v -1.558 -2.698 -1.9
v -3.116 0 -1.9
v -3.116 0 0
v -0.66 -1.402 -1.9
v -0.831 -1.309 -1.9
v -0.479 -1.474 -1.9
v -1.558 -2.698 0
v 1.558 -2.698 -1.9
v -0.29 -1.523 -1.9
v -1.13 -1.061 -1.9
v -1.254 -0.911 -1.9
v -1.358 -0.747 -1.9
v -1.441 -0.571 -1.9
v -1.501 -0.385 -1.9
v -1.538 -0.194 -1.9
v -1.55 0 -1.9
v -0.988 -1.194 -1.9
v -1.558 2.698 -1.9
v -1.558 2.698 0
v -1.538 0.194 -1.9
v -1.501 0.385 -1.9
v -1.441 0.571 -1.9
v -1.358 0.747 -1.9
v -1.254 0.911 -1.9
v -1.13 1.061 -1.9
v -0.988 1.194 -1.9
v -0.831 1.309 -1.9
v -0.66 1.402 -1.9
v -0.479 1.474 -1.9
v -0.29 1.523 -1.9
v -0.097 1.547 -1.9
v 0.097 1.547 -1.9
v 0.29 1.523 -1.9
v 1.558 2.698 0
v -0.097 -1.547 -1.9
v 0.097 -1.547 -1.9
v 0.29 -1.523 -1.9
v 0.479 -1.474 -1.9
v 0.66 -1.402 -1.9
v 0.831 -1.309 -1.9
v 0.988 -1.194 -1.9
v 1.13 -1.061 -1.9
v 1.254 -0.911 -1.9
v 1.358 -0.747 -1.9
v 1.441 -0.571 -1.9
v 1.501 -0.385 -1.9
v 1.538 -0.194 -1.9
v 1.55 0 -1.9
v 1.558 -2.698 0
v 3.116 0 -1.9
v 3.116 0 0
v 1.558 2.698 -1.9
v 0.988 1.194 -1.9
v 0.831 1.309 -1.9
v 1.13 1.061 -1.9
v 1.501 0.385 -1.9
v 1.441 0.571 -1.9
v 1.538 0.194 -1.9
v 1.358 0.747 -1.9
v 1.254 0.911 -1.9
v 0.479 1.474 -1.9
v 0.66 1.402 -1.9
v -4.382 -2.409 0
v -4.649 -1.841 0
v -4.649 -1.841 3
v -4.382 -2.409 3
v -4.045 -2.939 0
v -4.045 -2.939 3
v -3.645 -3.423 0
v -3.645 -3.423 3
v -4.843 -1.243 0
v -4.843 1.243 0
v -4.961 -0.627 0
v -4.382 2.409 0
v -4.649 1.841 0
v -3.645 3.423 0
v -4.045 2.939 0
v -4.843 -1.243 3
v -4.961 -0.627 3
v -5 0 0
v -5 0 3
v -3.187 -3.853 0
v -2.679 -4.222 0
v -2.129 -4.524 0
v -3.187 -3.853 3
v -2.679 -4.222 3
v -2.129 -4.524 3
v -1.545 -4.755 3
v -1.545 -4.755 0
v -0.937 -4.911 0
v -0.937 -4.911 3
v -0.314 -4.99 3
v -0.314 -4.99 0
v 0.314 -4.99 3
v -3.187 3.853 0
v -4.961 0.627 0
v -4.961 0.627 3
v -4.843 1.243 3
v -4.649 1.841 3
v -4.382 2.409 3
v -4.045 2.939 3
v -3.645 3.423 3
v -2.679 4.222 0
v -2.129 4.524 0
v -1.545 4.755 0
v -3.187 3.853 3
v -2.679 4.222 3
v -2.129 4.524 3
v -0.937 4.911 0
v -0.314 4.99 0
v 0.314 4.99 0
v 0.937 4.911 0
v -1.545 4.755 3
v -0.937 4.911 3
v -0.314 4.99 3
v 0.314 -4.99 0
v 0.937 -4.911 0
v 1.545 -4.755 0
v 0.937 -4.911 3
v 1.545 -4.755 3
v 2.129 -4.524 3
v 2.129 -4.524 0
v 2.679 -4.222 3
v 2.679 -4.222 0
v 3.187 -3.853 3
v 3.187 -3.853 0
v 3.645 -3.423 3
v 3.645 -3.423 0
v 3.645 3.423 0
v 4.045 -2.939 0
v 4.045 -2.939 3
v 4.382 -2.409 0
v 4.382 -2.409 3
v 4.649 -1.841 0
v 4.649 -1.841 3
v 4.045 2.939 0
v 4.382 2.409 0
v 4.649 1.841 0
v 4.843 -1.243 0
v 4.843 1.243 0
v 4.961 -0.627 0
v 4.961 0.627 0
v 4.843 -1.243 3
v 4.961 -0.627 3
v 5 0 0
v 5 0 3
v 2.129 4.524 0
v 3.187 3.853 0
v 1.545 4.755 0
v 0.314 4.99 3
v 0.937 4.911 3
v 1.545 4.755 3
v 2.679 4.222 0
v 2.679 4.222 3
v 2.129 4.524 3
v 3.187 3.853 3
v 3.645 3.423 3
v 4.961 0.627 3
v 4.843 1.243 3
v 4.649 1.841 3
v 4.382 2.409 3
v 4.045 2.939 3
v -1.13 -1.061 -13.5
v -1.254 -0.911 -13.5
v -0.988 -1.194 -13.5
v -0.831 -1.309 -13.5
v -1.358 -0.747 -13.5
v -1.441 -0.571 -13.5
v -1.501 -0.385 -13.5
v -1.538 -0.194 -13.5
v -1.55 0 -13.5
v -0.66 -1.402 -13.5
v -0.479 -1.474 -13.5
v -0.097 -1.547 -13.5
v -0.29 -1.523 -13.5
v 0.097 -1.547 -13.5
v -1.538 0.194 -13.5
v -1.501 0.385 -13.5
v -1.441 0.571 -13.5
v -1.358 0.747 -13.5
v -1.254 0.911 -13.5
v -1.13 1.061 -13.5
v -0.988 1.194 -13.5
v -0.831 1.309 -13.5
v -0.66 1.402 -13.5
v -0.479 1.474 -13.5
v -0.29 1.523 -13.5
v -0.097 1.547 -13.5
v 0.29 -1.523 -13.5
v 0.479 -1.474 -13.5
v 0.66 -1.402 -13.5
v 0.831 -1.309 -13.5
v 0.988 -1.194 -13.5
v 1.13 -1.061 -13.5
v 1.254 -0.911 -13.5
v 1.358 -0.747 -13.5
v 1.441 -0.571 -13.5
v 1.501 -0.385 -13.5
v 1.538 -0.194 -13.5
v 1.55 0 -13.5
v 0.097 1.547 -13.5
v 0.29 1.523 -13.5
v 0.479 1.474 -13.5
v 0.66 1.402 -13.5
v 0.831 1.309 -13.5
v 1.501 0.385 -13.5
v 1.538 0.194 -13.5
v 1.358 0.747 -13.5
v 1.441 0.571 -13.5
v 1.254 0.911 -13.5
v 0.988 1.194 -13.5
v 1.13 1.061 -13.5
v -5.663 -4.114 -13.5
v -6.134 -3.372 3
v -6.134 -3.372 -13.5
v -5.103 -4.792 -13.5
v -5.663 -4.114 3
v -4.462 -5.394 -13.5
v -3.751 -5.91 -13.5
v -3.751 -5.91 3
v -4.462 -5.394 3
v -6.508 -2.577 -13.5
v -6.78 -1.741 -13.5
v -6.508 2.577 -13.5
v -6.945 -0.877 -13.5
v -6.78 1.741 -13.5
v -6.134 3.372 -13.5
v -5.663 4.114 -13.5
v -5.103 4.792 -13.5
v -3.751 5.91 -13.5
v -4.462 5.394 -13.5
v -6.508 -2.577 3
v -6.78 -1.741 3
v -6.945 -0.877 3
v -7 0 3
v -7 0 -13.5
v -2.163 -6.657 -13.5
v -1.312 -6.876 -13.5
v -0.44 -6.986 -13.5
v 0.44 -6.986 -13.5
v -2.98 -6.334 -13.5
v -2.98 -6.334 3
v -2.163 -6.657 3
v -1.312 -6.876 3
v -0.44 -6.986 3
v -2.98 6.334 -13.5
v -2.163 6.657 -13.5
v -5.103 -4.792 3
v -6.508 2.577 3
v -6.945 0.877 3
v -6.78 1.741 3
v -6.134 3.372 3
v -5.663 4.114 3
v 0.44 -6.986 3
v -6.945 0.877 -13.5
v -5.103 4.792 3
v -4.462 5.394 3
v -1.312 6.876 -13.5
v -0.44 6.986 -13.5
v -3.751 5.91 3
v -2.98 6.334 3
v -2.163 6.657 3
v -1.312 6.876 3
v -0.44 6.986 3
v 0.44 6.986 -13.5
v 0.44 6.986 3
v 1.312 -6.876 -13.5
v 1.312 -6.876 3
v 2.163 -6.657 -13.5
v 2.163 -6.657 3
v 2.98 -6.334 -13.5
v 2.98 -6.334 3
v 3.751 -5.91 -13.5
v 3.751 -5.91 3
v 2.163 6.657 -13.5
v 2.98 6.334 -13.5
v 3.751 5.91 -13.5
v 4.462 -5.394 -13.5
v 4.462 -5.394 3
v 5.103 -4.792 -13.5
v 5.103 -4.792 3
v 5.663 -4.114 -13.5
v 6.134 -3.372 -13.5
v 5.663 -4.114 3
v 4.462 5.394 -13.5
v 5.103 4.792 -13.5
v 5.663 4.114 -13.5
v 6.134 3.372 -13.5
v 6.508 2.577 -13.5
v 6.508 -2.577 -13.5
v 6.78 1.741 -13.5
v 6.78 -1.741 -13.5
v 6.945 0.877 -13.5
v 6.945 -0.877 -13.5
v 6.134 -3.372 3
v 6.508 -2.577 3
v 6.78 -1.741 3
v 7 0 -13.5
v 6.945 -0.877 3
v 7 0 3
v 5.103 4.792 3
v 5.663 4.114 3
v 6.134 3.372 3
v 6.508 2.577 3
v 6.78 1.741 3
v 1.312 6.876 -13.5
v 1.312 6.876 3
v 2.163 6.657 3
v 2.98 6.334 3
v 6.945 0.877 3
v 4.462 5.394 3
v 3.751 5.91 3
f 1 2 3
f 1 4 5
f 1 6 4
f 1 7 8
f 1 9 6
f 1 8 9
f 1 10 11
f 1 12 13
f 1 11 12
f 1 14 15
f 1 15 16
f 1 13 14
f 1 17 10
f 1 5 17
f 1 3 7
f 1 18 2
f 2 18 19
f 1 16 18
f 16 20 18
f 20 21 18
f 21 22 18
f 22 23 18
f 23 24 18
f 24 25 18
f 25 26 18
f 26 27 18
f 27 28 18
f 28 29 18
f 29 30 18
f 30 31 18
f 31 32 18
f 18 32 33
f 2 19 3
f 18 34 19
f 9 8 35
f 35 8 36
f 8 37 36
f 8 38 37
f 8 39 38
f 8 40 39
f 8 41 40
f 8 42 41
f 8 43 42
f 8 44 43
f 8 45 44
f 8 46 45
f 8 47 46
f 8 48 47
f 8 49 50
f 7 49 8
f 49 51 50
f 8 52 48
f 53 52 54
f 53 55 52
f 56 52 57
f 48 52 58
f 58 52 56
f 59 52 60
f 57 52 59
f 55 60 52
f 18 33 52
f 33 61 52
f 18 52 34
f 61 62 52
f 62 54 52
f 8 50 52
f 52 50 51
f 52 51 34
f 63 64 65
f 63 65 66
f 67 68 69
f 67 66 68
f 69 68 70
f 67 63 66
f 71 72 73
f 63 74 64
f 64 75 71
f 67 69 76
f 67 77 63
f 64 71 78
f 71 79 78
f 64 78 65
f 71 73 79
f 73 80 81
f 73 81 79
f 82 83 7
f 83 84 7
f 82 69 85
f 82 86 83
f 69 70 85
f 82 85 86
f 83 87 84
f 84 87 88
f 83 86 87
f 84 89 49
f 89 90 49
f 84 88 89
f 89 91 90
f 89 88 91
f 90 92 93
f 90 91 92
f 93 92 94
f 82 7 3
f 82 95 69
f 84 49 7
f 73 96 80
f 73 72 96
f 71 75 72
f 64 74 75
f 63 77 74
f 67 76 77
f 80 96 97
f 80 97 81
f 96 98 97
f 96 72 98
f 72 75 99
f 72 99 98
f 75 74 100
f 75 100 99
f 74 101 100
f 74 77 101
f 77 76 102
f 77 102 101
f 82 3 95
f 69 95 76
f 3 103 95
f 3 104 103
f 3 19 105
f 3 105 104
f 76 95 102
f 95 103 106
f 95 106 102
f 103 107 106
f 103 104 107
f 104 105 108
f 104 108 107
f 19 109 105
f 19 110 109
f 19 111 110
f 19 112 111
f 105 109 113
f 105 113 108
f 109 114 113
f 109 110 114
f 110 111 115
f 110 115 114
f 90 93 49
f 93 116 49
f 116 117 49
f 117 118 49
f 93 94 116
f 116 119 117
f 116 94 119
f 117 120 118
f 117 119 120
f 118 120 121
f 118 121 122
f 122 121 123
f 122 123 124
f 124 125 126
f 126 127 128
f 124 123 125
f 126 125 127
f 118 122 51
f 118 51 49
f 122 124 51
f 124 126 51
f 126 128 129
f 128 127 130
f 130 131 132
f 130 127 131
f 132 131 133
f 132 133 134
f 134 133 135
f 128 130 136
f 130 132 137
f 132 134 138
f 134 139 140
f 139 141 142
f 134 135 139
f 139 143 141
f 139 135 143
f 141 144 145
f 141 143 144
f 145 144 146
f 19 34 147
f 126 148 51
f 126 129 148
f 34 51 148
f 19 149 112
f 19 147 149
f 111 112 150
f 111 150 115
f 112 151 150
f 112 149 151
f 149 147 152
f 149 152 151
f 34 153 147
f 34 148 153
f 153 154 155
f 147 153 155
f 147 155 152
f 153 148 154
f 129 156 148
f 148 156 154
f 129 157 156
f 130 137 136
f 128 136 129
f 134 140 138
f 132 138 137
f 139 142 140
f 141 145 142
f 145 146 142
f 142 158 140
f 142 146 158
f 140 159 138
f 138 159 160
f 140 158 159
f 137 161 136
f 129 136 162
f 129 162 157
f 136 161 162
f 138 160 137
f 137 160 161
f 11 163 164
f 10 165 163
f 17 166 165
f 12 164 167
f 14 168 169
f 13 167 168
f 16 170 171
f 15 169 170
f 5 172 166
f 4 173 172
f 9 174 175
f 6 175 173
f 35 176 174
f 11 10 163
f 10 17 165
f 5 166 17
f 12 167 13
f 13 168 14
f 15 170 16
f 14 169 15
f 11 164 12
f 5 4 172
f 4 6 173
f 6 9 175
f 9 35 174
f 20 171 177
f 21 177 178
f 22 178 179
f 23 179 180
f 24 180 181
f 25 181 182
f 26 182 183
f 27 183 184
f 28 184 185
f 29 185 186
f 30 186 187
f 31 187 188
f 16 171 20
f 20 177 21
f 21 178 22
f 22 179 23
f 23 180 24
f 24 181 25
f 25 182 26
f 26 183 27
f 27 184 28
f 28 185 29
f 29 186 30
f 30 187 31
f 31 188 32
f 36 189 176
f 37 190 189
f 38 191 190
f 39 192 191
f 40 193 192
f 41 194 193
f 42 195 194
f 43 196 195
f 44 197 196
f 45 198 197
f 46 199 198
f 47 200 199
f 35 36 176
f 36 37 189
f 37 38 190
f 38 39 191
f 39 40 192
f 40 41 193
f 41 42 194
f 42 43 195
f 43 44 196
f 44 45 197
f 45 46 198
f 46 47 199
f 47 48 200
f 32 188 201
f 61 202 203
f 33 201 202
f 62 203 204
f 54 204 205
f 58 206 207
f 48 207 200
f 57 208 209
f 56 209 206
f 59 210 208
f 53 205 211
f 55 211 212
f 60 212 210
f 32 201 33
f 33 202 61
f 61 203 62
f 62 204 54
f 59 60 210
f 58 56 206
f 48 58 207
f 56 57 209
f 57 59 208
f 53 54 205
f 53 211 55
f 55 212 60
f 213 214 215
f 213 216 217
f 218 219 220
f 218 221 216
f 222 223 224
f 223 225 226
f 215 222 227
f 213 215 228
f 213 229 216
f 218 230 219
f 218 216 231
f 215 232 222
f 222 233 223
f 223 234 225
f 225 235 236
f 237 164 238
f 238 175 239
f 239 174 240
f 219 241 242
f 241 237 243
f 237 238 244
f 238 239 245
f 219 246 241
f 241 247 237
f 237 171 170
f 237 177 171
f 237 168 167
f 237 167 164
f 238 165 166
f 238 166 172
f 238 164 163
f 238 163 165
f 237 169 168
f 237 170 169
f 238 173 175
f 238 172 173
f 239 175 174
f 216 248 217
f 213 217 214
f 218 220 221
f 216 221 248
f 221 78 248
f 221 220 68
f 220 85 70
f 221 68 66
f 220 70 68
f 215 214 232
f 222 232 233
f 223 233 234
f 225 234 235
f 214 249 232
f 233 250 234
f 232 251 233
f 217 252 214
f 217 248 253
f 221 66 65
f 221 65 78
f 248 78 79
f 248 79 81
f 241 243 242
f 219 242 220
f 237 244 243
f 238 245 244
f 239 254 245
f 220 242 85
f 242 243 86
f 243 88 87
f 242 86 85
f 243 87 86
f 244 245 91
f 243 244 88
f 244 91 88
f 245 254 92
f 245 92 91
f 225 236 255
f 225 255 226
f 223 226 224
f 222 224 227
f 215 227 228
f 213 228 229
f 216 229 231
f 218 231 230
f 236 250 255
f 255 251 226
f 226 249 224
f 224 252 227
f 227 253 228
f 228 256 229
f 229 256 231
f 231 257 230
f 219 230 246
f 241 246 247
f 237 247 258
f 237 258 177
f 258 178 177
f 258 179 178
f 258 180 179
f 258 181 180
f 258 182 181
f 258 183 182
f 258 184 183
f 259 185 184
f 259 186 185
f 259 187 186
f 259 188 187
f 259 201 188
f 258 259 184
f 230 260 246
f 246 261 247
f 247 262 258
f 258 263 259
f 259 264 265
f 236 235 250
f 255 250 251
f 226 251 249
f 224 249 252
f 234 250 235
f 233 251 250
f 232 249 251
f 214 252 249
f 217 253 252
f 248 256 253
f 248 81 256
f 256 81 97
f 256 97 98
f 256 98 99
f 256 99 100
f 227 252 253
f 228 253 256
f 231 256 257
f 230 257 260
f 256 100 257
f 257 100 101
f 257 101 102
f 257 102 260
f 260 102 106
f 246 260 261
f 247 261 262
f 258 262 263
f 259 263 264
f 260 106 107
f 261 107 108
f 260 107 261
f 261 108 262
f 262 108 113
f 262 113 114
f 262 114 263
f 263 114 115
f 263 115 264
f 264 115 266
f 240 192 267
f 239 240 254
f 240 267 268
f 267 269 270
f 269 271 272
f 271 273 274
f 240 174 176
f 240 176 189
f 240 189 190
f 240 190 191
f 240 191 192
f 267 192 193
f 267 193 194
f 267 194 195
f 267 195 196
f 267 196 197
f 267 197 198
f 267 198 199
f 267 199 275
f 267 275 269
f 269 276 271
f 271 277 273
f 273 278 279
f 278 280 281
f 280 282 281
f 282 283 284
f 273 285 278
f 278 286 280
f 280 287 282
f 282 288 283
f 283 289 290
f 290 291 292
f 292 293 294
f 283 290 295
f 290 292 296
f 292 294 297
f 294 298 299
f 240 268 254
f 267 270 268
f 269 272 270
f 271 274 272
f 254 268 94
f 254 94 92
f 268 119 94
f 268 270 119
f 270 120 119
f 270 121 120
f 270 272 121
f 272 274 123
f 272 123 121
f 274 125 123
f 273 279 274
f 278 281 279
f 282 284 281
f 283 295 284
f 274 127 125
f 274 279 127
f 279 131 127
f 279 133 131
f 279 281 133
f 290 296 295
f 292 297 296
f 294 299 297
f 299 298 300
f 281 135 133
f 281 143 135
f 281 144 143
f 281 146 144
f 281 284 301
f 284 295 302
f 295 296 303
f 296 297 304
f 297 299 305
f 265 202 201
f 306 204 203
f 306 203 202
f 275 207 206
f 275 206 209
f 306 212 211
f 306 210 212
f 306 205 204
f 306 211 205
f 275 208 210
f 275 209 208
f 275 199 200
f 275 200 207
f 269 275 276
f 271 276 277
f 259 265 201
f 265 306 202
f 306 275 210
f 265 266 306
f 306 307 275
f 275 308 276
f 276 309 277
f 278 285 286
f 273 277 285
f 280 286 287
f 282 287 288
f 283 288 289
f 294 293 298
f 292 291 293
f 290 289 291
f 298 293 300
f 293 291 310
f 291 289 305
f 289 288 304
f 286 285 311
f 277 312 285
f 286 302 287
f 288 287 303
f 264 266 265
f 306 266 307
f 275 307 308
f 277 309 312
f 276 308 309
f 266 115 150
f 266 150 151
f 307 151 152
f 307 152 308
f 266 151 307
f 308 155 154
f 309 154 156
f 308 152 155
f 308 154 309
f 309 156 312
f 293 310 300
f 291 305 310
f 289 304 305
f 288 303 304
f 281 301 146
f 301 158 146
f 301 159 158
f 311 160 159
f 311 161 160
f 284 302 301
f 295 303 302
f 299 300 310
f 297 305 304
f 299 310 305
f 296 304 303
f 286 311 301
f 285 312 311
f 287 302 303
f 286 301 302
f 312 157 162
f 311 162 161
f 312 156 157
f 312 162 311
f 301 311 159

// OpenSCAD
$fn = 50;

difference() {
	union() {
		translate(v = [0, 0, -13.5]) {
			cylinder(h = 16.5, r = 7.0);
		}
	}
	union() {
		translate(v = [0, 0, 0]) {
			rotate(a = [0, 0, 0]) {
				difference() {
					union() {
						translate(v = [0, 0, -1.9]) {
							linear_extrude(height = 1.9) {
								polygon(points = [[3.1158, 0.0], [1.5579000000000005, 2.698361953111554], [-1.5578999999999994, 2.6983619531115544], [-3.1158, 3.815754496783323e-16], [-1.5579000000000014, -2.6983619531115535], [1.557899999999998, -2.6983619531115552]]);
							}
						}
					}
					union();
				}
			}
		}
		#cylinder(h = 3, r = 5.0);
		#translate(v = [0, 0, -100.0]) {
			cylinder(h = 200, r = 1.55);
		}
	}
}
